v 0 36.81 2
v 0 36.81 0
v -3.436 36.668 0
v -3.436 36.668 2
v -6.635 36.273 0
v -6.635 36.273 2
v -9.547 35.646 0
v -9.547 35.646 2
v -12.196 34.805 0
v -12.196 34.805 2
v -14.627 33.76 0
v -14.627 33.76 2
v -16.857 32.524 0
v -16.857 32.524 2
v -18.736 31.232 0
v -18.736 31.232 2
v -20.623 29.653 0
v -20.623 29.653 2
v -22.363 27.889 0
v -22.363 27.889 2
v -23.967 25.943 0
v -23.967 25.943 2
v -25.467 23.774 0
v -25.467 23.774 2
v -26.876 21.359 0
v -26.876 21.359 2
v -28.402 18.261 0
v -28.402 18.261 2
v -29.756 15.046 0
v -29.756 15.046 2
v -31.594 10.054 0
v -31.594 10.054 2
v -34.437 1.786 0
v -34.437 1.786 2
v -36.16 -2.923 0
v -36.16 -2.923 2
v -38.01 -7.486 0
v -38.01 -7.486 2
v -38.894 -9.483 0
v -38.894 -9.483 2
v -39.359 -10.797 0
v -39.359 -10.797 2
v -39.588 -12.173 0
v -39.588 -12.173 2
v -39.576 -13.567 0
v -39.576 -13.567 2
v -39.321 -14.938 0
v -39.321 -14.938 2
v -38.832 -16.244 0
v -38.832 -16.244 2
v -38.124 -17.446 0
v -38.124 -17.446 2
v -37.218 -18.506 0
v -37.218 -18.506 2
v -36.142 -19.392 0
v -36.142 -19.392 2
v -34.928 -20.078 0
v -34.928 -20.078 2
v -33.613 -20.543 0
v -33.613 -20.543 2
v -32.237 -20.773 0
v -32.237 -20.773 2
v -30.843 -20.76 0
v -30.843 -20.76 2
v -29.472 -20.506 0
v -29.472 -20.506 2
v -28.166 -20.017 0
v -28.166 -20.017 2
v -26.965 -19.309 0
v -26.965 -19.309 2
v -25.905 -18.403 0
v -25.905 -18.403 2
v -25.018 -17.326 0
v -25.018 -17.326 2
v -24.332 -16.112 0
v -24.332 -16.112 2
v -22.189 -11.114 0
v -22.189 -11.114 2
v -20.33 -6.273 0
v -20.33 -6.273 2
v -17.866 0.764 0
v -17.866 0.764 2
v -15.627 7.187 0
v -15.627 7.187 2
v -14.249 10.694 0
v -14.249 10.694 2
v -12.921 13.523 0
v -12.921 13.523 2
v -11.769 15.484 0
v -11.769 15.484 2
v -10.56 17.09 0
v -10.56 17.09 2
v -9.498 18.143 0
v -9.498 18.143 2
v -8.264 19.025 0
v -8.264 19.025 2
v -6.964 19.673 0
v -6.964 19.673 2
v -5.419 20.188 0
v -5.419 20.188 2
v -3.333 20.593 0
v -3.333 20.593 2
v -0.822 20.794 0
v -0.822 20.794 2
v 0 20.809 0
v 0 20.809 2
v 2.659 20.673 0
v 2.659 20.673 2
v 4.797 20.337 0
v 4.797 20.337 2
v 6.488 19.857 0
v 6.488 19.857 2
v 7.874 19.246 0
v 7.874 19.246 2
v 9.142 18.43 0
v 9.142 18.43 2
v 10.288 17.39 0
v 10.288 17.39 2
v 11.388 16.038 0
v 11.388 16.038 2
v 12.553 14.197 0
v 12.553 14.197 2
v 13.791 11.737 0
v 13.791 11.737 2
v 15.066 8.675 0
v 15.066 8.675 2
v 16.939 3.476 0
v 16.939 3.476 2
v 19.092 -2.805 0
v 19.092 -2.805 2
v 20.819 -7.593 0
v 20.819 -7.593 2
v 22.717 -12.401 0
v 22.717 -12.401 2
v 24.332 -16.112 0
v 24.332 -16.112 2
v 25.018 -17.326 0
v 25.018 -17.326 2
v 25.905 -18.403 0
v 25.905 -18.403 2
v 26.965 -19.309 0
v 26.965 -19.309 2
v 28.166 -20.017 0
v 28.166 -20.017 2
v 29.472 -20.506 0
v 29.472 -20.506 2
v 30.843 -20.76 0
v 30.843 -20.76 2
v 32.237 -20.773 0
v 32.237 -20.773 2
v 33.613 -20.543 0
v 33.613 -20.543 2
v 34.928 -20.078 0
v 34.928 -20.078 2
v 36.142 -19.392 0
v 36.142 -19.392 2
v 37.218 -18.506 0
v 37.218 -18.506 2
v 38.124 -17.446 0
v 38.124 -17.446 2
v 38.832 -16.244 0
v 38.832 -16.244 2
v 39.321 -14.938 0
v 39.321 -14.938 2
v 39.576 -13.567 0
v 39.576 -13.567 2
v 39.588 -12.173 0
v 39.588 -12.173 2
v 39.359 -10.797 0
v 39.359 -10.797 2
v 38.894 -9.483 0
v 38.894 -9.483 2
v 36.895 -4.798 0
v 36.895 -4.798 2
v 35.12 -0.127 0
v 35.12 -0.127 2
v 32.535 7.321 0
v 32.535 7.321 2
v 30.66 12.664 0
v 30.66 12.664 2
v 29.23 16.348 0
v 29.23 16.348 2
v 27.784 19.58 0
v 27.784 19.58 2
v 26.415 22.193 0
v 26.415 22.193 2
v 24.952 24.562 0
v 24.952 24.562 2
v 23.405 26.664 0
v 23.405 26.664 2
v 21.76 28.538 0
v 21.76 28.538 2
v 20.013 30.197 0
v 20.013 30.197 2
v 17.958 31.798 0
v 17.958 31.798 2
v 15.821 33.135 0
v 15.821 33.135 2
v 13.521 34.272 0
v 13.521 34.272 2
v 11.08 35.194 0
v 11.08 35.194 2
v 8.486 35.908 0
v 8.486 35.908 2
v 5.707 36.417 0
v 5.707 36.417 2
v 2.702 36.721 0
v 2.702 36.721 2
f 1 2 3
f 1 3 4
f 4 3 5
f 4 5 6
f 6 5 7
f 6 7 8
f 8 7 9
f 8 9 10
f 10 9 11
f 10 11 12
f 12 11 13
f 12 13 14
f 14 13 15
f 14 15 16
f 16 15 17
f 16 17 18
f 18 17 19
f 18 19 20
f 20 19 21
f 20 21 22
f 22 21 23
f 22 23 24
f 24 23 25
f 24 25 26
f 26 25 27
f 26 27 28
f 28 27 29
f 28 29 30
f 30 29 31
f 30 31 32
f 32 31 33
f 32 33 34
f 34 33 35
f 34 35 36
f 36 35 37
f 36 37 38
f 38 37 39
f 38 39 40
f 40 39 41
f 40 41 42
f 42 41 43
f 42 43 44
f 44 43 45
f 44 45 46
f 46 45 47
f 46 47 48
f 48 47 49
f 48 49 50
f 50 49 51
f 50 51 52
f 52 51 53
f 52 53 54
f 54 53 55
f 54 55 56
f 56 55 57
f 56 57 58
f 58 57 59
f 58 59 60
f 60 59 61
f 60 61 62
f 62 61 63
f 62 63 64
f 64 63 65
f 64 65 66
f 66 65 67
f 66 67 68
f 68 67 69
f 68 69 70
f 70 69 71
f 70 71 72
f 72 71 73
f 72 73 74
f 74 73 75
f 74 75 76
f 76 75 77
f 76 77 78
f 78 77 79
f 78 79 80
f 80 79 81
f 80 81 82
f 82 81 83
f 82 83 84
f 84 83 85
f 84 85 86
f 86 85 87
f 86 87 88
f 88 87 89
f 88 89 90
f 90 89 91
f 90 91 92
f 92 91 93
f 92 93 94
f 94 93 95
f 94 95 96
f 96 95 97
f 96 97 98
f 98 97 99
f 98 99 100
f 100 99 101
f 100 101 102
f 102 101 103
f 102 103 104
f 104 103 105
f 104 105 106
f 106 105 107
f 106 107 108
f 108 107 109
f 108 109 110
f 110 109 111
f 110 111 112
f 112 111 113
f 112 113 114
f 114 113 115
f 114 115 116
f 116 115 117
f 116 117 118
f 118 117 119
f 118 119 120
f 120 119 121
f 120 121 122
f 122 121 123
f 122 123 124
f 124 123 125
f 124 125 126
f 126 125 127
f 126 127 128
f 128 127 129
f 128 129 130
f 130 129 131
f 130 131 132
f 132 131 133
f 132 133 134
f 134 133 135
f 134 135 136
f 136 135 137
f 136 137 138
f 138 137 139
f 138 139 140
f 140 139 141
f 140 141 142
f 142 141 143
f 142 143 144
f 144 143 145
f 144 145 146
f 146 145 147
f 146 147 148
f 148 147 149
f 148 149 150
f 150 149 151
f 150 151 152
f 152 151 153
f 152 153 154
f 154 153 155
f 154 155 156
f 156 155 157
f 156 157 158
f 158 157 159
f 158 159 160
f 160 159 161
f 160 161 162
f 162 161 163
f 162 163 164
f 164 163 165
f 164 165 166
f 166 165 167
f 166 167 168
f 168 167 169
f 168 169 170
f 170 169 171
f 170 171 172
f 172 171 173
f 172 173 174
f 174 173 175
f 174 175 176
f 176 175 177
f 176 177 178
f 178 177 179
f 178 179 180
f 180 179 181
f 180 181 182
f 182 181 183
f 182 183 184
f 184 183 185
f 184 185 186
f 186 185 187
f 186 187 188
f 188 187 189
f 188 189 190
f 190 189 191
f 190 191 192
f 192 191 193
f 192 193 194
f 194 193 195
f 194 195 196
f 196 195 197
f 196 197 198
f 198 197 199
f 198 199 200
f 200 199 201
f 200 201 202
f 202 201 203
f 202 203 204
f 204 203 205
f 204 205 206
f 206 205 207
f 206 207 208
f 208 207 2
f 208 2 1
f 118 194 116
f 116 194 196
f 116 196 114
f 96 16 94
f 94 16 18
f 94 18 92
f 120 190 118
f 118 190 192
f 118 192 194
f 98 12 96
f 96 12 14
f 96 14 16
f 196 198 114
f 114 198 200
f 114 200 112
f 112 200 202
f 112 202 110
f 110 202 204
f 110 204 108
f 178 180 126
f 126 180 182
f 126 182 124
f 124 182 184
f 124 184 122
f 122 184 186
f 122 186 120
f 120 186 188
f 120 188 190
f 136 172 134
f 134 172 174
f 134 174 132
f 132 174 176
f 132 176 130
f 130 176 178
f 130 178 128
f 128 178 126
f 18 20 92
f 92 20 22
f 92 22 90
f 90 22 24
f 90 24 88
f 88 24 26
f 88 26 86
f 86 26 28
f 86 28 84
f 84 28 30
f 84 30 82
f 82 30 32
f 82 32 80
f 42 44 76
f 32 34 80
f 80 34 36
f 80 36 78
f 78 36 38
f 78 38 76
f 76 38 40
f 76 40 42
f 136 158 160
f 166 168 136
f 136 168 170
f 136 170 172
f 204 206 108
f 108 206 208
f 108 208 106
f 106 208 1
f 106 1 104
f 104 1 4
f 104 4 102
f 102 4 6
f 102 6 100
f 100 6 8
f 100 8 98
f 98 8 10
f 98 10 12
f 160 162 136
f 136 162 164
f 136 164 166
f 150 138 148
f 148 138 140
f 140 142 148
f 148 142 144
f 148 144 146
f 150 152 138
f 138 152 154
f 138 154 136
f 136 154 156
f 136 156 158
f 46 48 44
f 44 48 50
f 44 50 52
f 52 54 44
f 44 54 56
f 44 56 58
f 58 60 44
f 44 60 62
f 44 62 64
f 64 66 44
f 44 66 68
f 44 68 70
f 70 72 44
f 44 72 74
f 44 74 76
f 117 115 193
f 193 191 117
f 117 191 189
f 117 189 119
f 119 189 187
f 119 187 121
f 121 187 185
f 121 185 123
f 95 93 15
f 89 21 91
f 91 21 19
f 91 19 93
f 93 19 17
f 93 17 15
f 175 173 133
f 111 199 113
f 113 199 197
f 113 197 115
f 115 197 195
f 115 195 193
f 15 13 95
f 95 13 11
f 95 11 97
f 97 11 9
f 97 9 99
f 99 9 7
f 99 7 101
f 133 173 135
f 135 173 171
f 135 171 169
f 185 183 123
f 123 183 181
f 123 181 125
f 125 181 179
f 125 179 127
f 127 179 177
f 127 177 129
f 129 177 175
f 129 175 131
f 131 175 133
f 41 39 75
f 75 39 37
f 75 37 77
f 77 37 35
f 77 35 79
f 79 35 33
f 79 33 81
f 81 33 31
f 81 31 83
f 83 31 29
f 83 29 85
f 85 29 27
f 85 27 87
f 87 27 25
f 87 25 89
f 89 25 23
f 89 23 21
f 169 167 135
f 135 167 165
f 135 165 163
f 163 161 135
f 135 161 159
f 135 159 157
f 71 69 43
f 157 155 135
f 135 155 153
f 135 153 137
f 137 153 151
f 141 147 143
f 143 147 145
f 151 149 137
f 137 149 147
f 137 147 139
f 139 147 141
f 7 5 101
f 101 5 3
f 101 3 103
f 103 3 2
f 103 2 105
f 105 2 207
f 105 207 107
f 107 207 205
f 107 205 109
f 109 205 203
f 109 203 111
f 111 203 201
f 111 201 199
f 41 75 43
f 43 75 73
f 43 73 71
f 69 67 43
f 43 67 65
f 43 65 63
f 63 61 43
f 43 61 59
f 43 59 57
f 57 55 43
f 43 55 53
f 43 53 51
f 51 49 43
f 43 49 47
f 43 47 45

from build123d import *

# Parameters (mm, degrees)
RESSALTO_EXTRUS_O1_DEPTH = 2


with BuildPart() as part:
    # Esboço1 → Ressalto-extrusão1 (new body)
    with BuildSketch(Plane.XY):
        with BuildLine():
            ThreePointArc((38.893705006, -9.482659727), (34.927564841, -20.078400956), (24.331823612, -16.112260791))
            add(Edge.make_bspline(
                [(24.331823612, -16.112260791), (23.983783233, -15.347792057), (23.297762145, -13.795711005), (22.040666859, -10.788977079), (20.628775122, -7.138721433), (19.14644952, -2.991350324), (17.377531729, 2.192111257), (15.428621613, 7.929842512), (13.181256101, 13.324830328), (10.905736924, 16.924357855), (9.076821096, 18.595474149), (7.262882174, 19.596084251), (5.791725077, 20.116726452), (4.32654031, 20.447425561), (3.069290893, 20.641456593), (1.875570082, 20.749035258), (0.838543608, 20.797092045), (0.2758795, 20.807709322), (0, 20.809363979)],
                knots=[0.000709726, 0.000709726, 0.000709726, 0.000709726, 0.031937547, 0.063165368, 0.12562101, 0.188076652, 0.250532294, 0.375443579, 0.500354863, 0.625266147, 0.750177431, 0.812633074, 0.875088716, 0.906316537, 0.937544358, 0.968772179, 0.984386089, 1, 1, 1, 1], degree=3))
            add(Edge.make_bspline(
                [(0, 20.809363979), (-0.2758795, 20.807709322), (-0.838543608, 20.797092045), (-1.875570082, 20.749035258), (-3.069290893, 20.641456593), (-4.32654031, 20.447425561), (-5.791725077, 20.116726452), (-7.262882174, 19.596084251), (-9.076821096, 18.595474149), (-10.905736924, 16.924357855), (-13.181256101, 13.324830328), (-15.428621613, 7.929842512), (-17.377531729, 2.192111257), (-19.14644952, -2.991350324), (-20.628775122, -7.138721433), (-22.040666859, -10.788977079), (-23.297762145, -13.795711005), (-23.983783233, -15.347792057), (-24.331823612, -16.112260791)],
                knots=[0.000709726, 0.000709726, 0.000709726, 0.000709726, 0.016323636, 0.031937547, 0.063165368, 0.094393189, 0.12562101, 0.188076652, 0.250532294, 0.375443579, 0.500354863, 0.625266147, 0.750177431, 0.812633074, 0.875088716, 0.937544358, 0.968772179, 1, 1, 1, 1], degree=3))
            ThreePointArc((-24.331823612, -16.112260791), (-34.927564841, -20.078400956), (-38.893705006, -9.482659727))
            add(Edge.make_bspline(
                [(0, 36.80957368), (-0.824008136, 36.805586773), (-2.490397594, 36.757352704), (-5.667387691, 36.480930952), (-9.444126672, 35.788709944), (-13.637559694, 34.352703321), (-17.425551683, 32.303545323), (-20.705384268, 29.724354472), (-24.34661864, 25.779124547), (-27.644586785, 20.298655172), (-30.485272915, 13.362356543), (-32.541596925, 7.294744093), (-34.255992413, 2.27360154), (-35.630357038, -1.570261297), (-36.894463686, -4.836928388), (-37.998793205, -7.477889954), (-38.591710557, -8.81933062), (-38.893705006, -9.482659727)],
                knots=[-0.000572112, -0.000572112, -0.000572112, -0.000572112, 0.030695767, 0.061963645, 0.124499402, 0.187035159, 0.249570916, 0.312106673, 0.37464243, 0.499713944, 0.624785458, 0.749856972, 0.812392729, 0.874928486, 0.937464243, 0.968732122, 1, 1, 1, 1], degree=3))
            add(Edge.make_bspline(
                [(38.893705006, -9.482659727), (38.591710557, -8.81933062), (37.998793205, -7.477889954), (36.894463686, -4.836928388), (35.630357038, -1.570261297), (34.255992413, 2.27360154), (32.541596925, 7.294744093), (30.485272915, 13.362356543), (27.644586785, 20.298655172), (24.34661864, 25.779124547), (20.705384268, 29.724354472), (17.425551683, 32.303545323), (13.637559694, 34.352703321), (9.444126672, 35.788709944), (5.667387691, 36.480930952), (2.490397594, 36.757352704), (0.824008136, 36.805586773), (0, 36.80957368)],
                knots=[-0.000572112, -0.000572112, -0.000572112, -0.000572112, 0.030695767, 0.061963645, 0.124499402, 0.187035159, 0.249570916, 0.37464243, 0.499713944, 0.624785458, 0.687321215, 0.749856972, 0.812392729, 0.874928486, 0.937464243, 0.968732122, 1, 1, 1, 1], degree=3))
        make_face()
    extrude(amount=RESSALTO_EXTRUS_O1_DEPTH)


solid = part.part
